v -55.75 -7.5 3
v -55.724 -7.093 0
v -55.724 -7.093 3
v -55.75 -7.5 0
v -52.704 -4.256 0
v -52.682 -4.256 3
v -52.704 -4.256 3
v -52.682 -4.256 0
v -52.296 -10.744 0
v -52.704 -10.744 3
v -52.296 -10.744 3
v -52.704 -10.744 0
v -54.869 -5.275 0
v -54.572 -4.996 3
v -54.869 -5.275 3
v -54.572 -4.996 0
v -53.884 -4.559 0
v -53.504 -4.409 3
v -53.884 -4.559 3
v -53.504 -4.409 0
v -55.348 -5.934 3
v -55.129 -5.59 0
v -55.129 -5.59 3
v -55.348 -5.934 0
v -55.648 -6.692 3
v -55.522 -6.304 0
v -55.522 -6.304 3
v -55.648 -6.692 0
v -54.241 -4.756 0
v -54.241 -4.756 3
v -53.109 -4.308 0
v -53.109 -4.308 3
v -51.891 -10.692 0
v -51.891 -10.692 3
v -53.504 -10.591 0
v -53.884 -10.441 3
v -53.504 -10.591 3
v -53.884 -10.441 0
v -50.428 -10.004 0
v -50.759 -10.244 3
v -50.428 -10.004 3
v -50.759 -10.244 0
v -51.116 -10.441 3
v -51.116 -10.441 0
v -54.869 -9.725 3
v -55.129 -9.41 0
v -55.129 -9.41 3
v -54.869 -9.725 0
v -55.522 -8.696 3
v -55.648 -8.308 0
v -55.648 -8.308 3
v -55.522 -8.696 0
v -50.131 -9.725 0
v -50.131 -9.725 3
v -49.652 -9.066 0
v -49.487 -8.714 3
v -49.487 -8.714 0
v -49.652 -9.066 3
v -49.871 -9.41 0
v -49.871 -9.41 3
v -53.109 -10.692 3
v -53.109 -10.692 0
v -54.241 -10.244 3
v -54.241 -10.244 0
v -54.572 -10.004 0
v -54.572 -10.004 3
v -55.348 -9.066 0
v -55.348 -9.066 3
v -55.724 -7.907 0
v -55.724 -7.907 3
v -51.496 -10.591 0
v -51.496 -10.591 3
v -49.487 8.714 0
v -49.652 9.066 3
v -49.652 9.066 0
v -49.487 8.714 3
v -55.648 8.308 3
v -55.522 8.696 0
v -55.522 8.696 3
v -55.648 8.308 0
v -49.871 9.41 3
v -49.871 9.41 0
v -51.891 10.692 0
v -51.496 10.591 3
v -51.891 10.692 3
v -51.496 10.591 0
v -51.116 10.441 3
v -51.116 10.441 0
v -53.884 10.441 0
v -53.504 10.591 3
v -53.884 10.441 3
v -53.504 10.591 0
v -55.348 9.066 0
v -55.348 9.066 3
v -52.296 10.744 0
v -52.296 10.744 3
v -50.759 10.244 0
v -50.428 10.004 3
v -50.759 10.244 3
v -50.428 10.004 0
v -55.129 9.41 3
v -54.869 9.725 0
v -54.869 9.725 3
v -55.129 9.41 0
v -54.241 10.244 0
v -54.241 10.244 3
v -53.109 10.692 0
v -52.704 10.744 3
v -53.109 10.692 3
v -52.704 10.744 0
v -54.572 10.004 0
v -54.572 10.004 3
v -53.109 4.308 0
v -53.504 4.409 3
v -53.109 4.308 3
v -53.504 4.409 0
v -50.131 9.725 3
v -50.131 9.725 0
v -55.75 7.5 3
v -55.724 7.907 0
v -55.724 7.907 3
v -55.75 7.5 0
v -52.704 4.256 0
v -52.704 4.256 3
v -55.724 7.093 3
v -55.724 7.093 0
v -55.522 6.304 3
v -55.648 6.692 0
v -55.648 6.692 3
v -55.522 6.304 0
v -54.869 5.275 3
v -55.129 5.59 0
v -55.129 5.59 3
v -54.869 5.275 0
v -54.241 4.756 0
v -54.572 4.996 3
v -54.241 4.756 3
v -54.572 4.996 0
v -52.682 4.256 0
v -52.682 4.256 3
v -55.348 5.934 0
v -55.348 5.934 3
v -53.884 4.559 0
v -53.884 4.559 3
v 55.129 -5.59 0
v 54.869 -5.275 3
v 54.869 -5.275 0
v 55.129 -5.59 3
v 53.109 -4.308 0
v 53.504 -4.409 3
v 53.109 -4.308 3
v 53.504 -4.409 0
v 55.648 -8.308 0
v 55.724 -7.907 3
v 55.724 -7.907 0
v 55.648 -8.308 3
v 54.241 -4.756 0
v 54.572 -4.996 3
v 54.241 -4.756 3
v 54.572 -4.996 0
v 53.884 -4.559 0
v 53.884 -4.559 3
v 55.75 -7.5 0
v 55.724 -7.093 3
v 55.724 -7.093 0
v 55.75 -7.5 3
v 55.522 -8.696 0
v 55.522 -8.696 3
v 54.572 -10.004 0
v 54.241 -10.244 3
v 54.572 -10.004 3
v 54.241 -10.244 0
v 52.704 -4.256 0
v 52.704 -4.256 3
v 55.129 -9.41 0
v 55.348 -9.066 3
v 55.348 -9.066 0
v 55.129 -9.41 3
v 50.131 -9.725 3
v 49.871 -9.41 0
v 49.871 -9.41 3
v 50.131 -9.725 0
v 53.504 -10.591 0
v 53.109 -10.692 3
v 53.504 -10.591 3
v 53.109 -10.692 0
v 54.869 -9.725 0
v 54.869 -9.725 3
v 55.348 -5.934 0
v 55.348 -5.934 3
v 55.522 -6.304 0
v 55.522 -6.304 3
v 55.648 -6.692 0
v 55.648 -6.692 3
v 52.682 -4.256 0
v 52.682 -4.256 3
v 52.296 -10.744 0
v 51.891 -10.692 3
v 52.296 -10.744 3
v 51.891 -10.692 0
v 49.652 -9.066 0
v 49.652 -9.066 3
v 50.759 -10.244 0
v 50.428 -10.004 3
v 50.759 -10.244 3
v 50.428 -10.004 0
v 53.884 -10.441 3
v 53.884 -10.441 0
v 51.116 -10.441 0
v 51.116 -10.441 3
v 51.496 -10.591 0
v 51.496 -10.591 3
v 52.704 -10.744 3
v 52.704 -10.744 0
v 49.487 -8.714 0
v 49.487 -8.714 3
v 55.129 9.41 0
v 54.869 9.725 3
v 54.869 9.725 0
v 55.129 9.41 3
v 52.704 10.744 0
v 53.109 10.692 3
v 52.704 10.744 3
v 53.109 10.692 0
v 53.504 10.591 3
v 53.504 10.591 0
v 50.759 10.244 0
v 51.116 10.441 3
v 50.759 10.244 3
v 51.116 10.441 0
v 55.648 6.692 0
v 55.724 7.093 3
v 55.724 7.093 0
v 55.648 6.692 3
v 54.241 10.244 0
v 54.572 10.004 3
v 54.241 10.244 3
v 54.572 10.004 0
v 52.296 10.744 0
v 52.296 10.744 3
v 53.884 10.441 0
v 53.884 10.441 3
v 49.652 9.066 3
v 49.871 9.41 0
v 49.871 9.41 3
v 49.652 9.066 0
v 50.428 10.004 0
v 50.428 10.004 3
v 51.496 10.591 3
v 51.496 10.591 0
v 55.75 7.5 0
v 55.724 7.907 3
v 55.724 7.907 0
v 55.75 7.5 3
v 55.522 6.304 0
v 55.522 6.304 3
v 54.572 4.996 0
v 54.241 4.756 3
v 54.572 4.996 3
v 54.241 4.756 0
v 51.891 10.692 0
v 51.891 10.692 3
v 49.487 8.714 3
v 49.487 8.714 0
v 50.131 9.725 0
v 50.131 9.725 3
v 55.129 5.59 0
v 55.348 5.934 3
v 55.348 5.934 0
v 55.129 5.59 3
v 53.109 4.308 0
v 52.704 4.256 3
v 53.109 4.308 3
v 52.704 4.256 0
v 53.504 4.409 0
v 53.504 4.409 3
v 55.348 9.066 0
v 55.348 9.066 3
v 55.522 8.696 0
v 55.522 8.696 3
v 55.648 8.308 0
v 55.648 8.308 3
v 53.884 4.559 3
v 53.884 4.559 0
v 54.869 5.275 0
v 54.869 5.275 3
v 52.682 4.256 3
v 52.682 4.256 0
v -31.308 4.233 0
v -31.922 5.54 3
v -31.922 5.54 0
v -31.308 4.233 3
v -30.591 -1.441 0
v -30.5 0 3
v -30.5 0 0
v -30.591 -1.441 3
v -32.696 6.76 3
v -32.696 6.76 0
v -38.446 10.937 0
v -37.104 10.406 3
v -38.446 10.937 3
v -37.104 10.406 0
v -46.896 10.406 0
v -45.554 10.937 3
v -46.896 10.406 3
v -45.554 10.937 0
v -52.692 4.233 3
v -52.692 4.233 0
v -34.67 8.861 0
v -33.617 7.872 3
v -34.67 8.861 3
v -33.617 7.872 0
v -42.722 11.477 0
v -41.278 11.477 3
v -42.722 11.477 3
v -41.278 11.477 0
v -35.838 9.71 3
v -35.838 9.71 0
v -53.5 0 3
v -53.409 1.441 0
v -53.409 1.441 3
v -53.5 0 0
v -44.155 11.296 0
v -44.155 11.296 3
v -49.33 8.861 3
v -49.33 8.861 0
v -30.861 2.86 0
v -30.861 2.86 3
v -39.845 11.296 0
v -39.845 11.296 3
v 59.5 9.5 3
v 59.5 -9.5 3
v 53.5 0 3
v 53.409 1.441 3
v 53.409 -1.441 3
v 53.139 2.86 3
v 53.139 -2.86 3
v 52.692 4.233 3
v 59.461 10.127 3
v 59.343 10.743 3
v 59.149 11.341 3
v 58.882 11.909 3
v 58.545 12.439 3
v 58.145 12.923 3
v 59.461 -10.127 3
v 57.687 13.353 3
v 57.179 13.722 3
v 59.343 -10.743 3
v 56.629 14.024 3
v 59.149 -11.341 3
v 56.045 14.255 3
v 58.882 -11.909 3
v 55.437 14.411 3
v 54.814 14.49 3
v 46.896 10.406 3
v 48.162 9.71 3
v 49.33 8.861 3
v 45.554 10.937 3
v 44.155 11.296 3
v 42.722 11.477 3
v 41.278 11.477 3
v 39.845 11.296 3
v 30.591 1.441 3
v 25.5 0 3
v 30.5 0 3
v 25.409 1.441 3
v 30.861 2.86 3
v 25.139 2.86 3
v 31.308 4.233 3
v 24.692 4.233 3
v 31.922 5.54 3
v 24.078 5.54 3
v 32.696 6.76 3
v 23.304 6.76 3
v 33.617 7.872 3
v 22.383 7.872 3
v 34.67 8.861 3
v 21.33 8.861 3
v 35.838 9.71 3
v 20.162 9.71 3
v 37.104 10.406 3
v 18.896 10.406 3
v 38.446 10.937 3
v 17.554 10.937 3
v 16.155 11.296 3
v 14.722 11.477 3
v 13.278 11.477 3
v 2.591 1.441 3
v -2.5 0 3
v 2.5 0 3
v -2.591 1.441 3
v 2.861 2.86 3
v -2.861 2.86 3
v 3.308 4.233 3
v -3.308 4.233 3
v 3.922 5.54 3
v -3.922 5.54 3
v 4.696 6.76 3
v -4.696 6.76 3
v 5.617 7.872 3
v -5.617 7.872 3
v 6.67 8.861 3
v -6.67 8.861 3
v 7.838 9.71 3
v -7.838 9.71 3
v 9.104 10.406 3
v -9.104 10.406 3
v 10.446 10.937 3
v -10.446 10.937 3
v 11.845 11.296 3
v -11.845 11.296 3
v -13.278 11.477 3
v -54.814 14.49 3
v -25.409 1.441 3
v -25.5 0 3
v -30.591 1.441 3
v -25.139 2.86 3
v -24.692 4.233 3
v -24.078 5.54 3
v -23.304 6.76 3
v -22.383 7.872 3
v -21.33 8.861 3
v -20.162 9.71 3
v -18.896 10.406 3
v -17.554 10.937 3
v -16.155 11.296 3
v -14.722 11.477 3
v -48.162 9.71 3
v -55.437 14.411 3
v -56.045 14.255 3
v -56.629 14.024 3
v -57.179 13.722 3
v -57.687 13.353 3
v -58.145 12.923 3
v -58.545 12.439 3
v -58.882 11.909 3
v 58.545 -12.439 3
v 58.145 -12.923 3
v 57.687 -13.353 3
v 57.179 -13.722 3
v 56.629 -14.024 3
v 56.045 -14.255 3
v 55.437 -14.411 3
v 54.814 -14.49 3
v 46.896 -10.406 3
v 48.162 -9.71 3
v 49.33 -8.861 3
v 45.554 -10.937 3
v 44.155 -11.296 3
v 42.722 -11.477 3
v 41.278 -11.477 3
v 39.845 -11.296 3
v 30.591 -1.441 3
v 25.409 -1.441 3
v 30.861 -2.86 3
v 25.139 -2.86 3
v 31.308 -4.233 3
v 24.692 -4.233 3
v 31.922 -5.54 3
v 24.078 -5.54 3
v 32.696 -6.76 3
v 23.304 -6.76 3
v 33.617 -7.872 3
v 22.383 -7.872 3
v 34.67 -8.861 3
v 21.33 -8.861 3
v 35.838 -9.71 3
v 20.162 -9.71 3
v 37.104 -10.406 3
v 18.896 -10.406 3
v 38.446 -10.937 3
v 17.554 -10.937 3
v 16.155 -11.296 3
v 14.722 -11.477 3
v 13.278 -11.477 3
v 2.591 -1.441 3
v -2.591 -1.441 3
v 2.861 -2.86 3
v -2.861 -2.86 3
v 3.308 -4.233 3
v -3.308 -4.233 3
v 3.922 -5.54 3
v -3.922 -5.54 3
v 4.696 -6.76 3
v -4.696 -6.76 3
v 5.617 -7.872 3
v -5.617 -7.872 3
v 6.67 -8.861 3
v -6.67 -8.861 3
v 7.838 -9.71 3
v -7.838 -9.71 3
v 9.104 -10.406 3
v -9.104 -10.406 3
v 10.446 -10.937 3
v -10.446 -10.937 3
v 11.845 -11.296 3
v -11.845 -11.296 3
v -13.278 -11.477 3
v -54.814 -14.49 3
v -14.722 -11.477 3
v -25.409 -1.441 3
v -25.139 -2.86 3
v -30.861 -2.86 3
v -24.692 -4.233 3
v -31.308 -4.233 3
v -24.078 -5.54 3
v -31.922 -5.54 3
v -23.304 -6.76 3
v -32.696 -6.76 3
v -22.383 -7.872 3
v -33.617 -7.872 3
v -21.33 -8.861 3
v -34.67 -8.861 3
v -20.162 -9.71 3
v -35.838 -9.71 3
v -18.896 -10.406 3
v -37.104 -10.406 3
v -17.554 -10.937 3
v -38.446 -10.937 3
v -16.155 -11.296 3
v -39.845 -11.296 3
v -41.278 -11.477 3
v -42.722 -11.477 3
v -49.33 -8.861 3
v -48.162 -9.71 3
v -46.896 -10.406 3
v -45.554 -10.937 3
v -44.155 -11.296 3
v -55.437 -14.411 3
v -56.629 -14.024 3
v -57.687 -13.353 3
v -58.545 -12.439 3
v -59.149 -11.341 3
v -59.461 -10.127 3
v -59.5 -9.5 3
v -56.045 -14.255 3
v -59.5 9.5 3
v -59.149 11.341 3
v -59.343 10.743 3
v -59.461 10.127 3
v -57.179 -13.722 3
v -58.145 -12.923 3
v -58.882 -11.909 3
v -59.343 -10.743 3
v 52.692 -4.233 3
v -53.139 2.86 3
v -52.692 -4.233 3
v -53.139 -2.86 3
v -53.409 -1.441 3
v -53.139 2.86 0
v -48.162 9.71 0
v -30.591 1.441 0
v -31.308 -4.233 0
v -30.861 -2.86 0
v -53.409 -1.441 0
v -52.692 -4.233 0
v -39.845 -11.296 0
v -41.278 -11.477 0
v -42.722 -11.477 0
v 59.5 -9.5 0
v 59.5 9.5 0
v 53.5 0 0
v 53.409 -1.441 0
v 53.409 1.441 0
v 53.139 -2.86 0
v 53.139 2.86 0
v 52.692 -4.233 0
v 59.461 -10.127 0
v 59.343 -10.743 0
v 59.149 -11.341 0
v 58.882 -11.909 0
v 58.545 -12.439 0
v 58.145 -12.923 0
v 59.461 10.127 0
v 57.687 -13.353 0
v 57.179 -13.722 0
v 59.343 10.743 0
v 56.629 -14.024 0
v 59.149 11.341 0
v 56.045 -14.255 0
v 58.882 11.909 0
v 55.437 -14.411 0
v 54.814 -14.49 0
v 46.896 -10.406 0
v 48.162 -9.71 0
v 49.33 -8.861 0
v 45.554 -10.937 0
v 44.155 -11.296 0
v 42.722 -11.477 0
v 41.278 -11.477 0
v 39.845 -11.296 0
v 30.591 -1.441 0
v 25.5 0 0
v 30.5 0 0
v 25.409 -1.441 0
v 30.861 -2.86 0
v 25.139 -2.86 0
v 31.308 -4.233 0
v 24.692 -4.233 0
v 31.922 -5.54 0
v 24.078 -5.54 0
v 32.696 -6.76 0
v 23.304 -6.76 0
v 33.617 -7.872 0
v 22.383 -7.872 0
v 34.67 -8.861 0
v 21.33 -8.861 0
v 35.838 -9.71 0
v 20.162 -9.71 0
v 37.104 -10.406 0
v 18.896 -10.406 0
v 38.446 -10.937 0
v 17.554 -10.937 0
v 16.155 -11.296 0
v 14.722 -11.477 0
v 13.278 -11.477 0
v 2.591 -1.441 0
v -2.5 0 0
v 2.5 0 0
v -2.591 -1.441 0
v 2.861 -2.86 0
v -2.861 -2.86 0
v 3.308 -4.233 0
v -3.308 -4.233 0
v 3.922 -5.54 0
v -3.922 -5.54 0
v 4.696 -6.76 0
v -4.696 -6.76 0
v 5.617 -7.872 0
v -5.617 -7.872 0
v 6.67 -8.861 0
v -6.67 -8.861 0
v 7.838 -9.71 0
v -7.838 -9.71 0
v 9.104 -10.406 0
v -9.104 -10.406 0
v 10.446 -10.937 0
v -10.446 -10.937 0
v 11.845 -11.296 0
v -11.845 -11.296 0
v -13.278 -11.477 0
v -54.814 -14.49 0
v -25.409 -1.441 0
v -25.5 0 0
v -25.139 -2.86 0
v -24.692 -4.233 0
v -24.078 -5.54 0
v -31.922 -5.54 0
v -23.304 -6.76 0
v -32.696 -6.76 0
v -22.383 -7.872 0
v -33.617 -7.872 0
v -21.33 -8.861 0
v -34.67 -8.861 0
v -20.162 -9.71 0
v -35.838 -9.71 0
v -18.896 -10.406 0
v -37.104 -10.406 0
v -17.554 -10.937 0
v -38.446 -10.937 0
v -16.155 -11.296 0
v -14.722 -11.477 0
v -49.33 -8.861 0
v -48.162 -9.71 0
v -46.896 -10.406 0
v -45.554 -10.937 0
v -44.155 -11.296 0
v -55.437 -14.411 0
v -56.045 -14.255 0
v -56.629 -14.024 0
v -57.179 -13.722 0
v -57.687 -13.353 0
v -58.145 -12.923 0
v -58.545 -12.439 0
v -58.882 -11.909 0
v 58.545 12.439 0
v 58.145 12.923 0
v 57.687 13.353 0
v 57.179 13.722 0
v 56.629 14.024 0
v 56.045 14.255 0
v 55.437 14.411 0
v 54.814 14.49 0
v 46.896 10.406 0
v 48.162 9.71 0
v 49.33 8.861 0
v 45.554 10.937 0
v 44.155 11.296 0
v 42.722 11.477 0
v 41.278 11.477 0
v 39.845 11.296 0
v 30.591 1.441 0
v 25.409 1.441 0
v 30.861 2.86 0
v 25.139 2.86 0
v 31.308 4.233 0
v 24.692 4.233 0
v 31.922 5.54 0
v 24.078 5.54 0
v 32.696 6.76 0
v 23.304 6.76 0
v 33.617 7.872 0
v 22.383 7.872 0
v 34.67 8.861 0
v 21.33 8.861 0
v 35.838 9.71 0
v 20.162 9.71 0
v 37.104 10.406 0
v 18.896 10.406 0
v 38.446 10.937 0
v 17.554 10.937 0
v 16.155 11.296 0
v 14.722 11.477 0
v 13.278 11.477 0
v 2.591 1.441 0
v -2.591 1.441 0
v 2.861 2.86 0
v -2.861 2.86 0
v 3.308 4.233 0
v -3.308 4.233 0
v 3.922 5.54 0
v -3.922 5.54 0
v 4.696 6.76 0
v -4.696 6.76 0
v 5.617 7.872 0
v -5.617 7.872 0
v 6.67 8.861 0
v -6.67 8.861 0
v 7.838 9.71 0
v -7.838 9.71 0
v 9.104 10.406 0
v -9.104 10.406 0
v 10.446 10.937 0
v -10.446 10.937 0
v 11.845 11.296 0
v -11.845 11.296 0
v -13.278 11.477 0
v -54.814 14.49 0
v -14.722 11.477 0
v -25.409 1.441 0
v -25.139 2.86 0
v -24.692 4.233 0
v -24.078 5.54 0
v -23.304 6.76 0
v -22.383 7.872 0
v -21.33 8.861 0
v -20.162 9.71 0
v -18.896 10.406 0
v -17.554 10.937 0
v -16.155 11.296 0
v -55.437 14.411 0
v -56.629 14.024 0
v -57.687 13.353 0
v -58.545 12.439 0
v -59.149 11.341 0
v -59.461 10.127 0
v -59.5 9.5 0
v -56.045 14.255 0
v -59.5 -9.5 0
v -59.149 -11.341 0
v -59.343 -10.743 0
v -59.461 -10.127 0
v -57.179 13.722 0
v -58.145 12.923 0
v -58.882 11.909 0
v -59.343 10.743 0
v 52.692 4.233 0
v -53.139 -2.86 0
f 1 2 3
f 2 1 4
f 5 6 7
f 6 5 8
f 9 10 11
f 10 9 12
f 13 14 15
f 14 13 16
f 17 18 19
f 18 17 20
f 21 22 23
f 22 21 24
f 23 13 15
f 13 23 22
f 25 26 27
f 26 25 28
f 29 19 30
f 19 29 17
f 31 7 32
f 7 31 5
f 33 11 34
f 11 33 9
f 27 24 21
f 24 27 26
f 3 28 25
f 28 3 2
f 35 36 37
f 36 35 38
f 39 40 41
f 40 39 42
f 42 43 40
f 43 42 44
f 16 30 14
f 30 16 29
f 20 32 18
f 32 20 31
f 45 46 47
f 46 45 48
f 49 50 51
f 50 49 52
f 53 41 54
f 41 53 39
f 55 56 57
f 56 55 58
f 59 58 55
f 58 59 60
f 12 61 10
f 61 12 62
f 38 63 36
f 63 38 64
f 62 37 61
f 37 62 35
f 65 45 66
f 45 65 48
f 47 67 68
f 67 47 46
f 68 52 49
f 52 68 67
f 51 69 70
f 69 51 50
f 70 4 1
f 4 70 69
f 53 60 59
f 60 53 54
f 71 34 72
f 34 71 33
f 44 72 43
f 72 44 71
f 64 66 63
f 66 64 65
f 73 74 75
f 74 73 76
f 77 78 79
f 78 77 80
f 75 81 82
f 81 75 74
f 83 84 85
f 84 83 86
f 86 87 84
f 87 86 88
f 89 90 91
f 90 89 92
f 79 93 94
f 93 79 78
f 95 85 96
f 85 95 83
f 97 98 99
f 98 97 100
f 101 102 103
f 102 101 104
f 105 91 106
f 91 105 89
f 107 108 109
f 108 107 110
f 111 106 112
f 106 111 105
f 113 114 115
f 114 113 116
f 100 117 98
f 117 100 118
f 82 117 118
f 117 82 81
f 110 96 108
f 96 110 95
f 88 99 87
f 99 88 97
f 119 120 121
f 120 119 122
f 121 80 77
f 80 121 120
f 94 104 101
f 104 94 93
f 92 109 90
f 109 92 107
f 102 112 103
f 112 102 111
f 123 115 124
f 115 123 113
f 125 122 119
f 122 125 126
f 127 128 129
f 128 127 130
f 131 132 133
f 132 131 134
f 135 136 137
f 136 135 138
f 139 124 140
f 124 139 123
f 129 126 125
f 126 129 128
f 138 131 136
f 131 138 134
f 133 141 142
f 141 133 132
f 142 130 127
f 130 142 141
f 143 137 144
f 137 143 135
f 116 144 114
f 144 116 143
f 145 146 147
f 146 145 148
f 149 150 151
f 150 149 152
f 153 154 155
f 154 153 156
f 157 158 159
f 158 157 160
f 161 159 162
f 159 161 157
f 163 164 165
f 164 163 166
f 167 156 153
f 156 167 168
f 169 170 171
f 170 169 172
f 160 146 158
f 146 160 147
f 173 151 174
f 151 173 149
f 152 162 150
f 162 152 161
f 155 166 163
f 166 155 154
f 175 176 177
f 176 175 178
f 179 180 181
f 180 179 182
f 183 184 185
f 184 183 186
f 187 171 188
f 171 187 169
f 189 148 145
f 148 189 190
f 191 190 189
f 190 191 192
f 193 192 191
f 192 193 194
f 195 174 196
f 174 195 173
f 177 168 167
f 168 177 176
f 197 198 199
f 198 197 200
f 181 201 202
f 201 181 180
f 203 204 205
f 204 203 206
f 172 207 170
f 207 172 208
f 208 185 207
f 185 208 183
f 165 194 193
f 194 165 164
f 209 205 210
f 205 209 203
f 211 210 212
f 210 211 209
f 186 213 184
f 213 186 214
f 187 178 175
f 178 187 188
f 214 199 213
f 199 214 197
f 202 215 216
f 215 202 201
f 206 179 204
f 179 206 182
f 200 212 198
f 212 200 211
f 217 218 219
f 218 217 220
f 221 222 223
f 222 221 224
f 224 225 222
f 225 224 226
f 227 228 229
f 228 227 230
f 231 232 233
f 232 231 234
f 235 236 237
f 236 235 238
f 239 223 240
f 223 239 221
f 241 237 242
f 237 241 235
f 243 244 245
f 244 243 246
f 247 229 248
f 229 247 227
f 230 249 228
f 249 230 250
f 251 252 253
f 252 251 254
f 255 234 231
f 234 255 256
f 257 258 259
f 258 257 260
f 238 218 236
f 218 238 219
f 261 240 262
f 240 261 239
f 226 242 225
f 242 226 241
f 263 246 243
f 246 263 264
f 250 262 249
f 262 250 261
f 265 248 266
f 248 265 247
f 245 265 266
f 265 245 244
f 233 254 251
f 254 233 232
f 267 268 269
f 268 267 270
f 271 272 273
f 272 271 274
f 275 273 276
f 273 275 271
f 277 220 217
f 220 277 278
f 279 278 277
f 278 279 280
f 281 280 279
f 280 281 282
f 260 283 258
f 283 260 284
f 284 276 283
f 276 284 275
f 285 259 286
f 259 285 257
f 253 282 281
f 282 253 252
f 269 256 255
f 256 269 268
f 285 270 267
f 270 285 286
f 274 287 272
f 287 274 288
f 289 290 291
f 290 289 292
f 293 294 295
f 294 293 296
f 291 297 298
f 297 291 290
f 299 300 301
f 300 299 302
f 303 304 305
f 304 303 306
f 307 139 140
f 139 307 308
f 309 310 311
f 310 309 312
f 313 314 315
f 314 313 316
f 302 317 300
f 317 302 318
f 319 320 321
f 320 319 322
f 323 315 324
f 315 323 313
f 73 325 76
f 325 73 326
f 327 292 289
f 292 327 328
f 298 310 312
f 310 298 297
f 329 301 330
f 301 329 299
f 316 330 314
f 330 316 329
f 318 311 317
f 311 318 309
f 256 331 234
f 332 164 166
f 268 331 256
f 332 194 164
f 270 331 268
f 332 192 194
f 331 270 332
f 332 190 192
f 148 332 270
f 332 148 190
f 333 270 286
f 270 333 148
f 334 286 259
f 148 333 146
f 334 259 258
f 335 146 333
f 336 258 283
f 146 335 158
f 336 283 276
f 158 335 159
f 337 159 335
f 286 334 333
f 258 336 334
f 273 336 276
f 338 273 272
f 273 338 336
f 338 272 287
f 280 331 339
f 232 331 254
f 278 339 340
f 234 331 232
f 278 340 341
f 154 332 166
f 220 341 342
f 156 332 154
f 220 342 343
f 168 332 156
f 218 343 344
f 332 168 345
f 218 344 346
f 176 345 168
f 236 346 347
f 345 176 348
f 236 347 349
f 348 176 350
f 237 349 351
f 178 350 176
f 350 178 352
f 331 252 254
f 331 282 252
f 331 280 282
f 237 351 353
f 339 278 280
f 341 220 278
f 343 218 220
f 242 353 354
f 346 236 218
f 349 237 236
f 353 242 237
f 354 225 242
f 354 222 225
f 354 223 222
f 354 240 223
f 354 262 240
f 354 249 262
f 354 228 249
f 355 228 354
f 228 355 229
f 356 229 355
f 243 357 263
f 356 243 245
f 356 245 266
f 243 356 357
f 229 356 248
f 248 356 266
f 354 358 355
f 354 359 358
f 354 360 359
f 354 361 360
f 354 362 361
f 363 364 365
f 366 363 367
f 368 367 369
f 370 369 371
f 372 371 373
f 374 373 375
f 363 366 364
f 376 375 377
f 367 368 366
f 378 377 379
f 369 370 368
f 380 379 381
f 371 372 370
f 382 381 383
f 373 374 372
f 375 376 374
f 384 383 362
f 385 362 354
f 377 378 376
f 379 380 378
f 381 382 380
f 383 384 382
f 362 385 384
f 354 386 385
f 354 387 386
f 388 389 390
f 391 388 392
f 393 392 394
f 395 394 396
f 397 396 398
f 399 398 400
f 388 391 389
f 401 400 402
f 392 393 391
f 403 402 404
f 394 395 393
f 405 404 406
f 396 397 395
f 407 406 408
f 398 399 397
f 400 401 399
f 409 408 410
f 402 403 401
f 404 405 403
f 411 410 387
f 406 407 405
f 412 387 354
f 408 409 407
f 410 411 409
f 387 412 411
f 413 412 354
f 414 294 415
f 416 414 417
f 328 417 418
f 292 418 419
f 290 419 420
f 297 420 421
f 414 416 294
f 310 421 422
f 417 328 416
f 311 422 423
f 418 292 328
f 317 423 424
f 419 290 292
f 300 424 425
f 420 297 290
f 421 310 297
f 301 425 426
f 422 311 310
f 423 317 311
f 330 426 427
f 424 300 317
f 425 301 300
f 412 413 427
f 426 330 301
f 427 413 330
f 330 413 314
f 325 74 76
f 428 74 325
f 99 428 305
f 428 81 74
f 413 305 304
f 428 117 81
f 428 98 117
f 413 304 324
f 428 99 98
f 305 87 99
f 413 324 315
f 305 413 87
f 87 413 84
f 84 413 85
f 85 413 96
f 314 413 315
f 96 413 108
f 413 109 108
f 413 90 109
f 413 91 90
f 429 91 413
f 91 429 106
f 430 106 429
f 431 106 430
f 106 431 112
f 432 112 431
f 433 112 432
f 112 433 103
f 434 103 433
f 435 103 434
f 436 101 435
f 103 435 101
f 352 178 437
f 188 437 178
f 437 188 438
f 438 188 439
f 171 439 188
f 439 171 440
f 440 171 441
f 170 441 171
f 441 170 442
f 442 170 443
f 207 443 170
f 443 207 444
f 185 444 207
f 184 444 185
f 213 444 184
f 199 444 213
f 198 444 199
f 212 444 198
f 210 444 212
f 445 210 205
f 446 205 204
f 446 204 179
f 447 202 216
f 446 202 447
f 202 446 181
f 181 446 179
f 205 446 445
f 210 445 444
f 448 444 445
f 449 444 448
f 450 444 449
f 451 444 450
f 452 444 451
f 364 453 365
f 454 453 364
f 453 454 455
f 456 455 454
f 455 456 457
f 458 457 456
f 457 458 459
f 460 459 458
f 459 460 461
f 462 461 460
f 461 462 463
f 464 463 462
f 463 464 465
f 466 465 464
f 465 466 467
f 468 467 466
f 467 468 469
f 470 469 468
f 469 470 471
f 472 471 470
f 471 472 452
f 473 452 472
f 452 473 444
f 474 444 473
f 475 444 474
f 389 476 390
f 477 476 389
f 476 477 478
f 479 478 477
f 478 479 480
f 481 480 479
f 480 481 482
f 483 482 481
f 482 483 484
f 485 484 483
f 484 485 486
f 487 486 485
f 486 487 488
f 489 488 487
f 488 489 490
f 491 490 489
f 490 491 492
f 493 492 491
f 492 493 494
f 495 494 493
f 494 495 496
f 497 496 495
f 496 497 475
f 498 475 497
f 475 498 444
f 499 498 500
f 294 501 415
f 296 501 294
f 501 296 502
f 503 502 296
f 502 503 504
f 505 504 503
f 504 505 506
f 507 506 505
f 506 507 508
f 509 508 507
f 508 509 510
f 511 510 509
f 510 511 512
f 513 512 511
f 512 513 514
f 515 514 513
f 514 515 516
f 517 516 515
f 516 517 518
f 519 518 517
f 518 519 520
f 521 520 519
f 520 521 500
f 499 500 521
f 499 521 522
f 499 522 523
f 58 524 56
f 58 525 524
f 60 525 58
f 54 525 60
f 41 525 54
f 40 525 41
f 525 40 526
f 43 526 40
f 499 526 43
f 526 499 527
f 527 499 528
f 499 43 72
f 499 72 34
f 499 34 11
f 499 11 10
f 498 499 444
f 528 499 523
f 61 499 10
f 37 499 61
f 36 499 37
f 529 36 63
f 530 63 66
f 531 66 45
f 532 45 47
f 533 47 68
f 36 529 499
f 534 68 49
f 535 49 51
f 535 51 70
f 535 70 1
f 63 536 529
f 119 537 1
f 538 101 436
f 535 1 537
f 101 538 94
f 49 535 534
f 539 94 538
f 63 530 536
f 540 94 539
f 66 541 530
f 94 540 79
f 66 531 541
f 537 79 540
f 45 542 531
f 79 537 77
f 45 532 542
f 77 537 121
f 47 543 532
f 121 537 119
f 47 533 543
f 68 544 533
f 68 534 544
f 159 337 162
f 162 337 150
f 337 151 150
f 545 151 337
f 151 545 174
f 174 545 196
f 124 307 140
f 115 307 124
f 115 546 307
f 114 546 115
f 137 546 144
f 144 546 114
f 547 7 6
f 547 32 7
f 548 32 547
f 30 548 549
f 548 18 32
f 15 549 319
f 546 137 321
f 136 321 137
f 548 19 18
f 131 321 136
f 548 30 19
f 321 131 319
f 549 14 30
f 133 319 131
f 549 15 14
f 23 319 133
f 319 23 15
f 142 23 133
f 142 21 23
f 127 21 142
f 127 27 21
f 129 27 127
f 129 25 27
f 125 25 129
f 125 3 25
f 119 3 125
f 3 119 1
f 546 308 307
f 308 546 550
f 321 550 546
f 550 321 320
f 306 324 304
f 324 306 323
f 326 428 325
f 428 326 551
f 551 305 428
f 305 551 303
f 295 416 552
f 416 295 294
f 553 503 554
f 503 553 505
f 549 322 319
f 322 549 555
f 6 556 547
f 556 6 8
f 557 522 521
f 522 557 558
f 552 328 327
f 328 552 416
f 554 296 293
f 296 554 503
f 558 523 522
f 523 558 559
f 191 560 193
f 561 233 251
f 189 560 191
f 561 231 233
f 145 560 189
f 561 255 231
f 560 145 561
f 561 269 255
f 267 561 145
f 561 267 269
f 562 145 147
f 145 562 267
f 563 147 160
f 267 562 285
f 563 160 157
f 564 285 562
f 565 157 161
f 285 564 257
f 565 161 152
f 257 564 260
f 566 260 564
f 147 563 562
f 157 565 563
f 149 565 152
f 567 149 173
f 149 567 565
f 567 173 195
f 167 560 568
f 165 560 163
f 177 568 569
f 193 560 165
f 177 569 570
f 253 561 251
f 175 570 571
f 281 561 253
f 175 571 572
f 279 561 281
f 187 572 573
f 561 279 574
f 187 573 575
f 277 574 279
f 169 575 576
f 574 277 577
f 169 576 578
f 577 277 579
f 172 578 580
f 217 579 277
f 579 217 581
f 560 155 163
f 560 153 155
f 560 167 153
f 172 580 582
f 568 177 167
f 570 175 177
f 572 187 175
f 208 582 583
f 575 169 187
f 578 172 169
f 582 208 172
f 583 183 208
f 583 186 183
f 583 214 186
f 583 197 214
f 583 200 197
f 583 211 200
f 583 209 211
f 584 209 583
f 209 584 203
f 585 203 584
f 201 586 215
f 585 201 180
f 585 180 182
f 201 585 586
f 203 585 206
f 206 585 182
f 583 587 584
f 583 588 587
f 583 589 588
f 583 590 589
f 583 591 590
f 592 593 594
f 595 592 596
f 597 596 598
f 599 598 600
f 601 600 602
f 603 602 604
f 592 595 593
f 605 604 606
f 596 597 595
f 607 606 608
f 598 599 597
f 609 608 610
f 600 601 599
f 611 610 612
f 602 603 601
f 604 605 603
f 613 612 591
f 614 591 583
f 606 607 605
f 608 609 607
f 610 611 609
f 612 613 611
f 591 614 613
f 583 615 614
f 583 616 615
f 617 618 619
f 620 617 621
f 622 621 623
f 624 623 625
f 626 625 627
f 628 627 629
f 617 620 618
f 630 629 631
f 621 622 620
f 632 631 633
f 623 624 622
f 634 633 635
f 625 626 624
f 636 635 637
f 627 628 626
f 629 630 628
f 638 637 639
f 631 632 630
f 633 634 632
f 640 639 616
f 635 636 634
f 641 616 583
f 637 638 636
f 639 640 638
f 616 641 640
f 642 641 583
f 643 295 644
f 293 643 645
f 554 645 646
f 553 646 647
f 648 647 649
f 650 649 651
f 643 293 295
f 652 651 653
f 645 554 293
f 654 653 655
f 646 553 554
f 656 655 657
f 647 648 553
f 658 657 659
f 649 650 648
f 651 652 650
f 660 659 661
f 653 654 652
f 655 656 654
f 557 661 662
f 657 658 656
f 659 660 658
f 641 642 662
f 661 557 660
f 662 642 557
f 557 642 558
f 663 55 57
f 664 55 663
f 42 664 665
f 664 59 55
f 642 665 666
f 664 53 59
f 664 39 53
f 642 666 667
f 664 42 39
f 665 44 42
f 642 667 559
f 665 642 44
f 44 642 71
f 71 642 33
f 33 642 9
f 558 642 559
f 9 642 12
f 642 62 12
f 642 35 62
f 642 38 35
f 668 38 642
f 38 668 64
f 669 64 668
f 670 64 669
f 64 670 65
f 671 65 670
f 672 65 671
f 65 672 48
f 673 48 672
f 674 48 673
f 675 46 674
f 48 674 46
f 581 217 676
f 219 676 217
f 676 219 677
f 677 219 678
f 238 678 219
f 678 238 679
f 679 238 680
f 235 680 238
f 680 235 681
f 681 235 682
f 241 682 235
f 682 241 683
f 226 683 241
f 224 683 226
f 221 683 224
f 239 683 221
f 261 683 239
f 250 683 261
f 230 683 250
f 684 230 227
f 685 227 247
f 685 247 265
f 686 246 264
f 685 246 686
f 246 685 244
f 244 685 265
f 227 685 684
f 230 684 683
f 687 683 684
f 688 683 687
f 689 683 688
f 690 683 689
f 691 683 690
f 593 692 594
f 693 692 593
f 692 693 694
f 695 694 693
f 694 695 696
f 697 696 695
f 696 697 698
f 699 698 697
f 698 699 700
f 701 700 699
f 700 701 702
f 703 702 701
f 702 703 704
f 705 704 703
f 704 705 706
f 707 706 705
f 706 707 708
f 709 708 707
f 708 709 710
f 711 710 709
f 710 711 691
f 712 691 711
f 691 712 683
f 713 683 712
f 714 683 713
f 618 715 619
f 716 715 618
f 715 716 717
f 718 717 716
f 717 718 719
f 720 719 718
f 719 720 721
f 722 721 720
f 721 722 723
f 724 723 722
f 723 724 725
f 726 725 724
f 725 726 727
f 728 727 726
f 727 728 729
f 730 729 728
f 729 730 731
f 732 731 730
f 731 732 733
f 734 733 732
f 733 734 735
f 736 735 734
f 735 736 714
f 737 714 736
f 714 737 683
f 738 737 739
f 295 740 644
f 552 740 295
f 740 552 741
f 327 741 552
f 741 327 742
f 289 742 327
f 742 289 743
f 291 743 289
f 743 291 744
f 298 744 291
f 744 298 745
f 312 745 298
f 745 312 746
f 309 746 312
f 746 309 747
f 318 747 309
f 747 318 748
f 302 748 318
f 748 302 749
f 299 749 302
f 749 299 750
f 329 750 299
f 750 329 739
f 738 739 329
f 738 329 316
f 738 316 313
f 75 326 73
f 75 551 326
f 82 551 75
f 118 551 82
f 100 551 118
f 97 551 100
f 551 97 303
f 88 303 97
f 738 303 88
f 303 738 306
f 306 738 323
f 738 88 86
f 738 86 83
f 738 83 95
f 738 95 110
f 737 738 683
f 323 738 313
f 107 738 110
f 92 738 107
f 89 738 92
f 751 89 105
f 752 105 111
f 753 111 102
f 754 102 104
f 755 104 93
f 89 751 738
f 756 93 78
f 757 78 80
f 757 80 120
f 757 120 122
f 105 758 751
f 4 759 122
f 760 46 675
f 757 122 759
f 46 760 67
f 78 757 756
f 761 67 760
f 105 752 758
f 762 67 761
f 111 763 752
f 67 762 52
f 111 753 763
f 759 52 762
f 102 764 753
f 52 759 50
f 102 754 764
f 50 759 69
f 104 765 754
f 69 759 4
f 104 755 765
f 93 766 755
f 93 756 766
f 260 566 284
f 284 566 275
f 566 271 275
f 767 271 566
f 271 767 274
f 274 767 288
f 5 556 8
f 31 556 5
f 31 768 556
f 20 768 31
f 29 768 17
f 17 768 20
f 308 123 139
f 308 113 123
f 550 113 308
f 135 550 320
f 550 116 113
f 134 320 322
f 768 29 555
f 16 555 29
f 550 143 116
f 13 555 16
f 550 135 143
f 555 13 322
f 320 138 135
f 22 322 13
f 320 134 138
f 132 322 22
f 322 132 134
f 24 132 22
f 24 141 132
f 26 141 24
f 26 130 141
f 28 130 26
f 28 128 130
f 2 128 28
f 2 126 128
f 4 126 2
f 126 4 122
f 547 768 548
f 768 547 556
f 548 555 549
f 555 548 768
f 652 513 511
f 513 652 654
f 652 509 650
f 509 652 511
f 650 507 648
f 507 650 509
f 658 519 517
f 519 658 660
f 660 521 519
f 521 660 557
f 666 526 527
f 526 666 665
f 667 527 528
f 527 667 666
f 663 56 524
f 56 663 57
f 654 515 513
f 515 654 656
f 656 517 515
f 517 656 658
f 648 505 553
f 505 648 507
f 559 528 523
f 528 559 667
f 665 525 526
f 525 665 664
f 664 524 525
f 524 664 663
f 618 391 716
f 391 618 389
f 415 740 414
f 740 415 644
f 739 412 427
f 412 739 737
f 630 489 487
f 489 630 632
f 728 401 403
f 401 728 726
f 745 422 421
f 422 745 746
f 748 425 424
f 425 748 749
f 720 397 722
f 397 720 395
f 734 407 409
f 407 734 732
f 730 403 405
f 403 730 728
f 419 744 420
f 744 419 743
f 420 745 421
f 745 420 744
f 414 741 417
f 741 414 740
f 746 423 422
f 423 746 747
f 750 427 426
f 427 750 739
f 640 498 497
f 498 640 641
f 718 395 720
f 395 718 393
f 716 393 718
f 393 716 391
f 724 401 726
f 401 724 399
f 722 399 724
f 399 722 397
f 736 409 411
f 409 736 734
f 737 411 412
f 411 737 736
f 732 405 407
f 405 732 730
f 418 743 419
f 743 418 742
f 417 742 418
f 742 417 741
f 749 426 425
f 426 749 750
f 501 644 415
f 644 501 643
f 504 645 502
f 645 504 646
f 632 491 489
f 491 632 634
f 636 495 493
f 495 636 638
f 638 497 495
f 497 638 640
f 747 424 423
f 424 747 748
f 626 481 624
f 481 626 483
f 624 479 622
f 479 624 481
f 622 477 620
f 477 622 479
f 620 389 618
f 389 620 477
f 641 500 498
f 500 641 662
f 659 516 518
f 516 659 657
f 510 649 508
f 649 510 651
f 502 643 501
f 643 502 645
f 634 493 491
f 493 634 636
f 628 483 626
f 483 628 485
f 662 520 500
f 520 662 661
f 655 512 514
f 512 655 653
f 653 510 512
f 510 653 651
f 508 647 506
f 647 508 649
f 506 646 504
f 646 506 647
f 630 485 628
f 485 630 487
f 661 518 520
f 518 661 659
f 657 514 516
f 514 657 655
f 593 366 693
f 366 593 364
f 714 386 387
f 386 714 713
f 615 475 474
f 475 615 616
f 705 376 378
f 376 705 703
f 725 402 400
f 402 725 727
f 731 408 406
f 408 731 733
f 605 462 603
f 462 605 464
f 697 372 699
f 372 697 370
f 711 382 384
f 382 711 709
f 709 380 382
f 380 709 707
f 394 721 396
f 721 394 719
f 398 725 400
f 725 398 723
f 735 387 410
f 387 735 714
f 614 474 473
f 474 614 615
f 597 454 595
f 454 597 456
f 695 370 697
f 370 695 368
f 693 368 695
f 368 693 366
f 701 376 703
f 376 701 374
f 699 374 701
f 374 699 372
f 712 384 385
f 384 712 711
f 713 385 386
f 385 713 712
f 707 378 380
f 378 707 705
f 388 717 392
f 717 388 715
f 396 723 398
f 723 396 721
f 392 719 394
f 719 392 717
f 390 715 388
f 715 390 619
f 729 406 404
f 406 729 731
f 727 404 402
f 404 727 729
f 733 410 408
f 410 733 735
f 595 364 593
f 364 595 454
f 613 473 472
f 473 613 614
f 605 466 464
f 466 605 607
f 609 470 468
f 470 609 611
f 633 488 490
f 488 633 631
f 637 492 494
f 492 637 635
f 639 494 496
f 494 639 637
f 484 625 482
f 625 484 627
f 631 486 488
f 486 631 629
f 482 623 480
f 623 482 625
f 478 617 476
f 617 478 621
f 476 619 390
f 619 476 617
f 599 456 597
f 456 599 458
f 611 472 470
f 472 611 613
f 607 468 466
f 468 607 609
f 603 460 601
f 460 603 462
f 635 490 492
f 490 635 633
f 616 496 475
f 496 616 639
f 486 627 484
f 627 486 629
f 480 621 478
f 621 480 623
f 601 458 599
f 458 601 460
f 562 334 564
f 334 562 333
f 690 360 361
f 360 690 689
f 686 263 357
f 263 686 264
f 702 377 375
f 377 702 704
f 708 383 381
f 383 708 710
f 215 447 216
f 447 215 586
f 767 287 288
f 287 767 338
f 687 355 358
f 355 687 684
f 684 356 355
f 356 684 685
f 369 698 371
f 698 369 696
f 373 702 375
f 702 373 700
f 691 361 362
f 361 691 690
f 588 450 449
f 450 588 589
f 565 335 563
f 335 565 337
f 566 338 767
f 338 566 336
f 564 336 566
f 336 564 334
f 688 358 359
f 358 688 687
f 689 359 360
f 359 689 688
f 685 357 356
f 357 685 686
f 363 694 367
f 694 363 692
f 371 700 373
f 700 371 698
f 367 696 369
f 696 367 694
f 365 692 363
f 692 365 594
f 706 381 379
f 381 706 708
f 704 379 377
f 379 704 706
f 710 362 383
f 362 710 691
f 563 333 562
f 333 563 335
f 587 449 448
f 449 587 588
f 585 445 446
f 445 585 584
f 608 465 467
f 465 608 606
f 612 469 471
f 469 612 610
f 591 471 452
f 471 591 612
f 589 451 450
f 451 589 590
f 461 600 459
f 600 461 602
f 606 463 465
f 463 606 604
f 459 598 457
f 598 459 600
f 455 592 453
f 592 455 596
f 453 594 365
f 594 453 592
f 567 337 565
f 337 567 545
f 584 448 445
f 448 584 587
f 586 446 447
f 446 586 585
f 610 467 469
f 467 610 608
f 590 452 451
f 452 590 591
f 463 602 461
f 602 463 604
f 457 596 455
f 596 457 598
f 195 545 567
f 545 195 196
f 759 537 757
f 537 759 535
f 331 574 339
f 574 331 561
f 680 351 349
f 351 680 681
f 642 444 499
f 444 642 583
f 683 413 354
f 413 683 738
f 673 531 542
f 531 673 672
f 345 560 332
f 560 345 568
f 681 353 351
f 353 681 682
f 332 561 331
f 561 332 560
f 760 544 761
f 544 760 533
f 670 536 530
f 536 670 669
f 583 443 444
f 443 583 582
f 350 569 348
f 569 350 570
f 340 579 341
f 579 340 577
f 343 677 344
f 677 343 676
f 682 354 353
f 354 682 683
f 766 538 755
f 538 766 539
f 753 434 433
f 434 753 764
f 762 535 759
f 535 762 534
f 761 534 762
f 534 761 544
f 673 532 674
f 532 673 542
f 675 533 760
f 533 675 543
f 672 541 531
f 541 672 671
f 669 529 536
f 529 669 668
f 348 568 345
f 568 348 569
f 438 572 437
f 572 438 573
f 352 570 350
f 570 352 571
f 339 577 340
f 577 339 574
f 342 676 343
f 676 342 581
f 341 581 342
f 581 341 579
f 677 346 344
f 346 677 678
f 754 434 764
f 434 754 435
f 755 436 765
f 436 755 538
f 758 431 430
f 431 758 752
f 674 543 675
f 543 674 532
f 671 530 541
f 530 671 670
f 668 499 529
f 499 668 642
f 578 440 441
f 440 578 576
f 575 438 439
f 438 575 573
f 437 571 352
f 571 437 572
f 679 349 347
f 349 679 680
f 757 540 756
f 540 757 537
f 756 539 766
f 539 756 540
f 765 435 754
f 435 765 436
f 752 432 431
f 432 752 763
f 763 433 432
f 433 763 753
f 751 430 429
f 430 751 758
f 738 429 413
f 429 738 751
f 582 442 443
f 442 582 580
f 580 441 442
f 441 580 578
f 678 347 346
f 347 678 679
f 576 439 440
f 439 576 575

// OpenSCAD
$fn = 50;


difference() {
	union() {
		hull() {
			translate(v = [-54.5000000000, 9.5000000000, 0]) {
				cylinder(h = 3, r = 5);
			}
			translate(v = [54.5000000000, 9.5000000000, 0]) {
				cylinder(h = 3, r = 5);
			}
			translate(v = [-54.5000000000, -9.5000000000, 0]) {
				cylinder(h = 3, r = 5);
			}
			translate(v = [54.5000000000, -9.5000000000, 0]) {
				cylinder(h = 3, r = 5);
			}
		}
	}
	union() {
		#translate(v = [-52.5000000000, -7.5000000000, -100.0000000000]) {
			cylinder(h = 200, r = 3.2500000000);
		}
		#translate(v = [-52.5000000000, 7.5000000000, -100.0000000000]) {
			cylinder(h = 200, r = 3.2500000000);
		}
		#translate(v = [52.5000000000, -7.5000000000, -100.0000000000]) {
			cylinder(h = 200, r = 3.2500000000);
		}
		#translate(v = [52.5000000000, 7.5000000000, -100.0000000000]) {
			cylinder(h = 200, r = 3.2500000000);
		}
		#translate(v = [-42.0000000000, 0, 0]) {
			cylinder(h = 3, r = 11.5000000000);
		}
		#translate(v = [-14.0000000000, 0, 0]) {
			cylinder(h = 3, r = 11.5000000000);
		}
		#translate(v = [14.0000000000, 0, 0]) {
			cylinder(h = 3, r = 11.5000000000);
		}
		#translate(v = [42.0000000000, 0, 0]) {
			cylinder(h = 3, r = 11.5000000000);
		}
	}
}
